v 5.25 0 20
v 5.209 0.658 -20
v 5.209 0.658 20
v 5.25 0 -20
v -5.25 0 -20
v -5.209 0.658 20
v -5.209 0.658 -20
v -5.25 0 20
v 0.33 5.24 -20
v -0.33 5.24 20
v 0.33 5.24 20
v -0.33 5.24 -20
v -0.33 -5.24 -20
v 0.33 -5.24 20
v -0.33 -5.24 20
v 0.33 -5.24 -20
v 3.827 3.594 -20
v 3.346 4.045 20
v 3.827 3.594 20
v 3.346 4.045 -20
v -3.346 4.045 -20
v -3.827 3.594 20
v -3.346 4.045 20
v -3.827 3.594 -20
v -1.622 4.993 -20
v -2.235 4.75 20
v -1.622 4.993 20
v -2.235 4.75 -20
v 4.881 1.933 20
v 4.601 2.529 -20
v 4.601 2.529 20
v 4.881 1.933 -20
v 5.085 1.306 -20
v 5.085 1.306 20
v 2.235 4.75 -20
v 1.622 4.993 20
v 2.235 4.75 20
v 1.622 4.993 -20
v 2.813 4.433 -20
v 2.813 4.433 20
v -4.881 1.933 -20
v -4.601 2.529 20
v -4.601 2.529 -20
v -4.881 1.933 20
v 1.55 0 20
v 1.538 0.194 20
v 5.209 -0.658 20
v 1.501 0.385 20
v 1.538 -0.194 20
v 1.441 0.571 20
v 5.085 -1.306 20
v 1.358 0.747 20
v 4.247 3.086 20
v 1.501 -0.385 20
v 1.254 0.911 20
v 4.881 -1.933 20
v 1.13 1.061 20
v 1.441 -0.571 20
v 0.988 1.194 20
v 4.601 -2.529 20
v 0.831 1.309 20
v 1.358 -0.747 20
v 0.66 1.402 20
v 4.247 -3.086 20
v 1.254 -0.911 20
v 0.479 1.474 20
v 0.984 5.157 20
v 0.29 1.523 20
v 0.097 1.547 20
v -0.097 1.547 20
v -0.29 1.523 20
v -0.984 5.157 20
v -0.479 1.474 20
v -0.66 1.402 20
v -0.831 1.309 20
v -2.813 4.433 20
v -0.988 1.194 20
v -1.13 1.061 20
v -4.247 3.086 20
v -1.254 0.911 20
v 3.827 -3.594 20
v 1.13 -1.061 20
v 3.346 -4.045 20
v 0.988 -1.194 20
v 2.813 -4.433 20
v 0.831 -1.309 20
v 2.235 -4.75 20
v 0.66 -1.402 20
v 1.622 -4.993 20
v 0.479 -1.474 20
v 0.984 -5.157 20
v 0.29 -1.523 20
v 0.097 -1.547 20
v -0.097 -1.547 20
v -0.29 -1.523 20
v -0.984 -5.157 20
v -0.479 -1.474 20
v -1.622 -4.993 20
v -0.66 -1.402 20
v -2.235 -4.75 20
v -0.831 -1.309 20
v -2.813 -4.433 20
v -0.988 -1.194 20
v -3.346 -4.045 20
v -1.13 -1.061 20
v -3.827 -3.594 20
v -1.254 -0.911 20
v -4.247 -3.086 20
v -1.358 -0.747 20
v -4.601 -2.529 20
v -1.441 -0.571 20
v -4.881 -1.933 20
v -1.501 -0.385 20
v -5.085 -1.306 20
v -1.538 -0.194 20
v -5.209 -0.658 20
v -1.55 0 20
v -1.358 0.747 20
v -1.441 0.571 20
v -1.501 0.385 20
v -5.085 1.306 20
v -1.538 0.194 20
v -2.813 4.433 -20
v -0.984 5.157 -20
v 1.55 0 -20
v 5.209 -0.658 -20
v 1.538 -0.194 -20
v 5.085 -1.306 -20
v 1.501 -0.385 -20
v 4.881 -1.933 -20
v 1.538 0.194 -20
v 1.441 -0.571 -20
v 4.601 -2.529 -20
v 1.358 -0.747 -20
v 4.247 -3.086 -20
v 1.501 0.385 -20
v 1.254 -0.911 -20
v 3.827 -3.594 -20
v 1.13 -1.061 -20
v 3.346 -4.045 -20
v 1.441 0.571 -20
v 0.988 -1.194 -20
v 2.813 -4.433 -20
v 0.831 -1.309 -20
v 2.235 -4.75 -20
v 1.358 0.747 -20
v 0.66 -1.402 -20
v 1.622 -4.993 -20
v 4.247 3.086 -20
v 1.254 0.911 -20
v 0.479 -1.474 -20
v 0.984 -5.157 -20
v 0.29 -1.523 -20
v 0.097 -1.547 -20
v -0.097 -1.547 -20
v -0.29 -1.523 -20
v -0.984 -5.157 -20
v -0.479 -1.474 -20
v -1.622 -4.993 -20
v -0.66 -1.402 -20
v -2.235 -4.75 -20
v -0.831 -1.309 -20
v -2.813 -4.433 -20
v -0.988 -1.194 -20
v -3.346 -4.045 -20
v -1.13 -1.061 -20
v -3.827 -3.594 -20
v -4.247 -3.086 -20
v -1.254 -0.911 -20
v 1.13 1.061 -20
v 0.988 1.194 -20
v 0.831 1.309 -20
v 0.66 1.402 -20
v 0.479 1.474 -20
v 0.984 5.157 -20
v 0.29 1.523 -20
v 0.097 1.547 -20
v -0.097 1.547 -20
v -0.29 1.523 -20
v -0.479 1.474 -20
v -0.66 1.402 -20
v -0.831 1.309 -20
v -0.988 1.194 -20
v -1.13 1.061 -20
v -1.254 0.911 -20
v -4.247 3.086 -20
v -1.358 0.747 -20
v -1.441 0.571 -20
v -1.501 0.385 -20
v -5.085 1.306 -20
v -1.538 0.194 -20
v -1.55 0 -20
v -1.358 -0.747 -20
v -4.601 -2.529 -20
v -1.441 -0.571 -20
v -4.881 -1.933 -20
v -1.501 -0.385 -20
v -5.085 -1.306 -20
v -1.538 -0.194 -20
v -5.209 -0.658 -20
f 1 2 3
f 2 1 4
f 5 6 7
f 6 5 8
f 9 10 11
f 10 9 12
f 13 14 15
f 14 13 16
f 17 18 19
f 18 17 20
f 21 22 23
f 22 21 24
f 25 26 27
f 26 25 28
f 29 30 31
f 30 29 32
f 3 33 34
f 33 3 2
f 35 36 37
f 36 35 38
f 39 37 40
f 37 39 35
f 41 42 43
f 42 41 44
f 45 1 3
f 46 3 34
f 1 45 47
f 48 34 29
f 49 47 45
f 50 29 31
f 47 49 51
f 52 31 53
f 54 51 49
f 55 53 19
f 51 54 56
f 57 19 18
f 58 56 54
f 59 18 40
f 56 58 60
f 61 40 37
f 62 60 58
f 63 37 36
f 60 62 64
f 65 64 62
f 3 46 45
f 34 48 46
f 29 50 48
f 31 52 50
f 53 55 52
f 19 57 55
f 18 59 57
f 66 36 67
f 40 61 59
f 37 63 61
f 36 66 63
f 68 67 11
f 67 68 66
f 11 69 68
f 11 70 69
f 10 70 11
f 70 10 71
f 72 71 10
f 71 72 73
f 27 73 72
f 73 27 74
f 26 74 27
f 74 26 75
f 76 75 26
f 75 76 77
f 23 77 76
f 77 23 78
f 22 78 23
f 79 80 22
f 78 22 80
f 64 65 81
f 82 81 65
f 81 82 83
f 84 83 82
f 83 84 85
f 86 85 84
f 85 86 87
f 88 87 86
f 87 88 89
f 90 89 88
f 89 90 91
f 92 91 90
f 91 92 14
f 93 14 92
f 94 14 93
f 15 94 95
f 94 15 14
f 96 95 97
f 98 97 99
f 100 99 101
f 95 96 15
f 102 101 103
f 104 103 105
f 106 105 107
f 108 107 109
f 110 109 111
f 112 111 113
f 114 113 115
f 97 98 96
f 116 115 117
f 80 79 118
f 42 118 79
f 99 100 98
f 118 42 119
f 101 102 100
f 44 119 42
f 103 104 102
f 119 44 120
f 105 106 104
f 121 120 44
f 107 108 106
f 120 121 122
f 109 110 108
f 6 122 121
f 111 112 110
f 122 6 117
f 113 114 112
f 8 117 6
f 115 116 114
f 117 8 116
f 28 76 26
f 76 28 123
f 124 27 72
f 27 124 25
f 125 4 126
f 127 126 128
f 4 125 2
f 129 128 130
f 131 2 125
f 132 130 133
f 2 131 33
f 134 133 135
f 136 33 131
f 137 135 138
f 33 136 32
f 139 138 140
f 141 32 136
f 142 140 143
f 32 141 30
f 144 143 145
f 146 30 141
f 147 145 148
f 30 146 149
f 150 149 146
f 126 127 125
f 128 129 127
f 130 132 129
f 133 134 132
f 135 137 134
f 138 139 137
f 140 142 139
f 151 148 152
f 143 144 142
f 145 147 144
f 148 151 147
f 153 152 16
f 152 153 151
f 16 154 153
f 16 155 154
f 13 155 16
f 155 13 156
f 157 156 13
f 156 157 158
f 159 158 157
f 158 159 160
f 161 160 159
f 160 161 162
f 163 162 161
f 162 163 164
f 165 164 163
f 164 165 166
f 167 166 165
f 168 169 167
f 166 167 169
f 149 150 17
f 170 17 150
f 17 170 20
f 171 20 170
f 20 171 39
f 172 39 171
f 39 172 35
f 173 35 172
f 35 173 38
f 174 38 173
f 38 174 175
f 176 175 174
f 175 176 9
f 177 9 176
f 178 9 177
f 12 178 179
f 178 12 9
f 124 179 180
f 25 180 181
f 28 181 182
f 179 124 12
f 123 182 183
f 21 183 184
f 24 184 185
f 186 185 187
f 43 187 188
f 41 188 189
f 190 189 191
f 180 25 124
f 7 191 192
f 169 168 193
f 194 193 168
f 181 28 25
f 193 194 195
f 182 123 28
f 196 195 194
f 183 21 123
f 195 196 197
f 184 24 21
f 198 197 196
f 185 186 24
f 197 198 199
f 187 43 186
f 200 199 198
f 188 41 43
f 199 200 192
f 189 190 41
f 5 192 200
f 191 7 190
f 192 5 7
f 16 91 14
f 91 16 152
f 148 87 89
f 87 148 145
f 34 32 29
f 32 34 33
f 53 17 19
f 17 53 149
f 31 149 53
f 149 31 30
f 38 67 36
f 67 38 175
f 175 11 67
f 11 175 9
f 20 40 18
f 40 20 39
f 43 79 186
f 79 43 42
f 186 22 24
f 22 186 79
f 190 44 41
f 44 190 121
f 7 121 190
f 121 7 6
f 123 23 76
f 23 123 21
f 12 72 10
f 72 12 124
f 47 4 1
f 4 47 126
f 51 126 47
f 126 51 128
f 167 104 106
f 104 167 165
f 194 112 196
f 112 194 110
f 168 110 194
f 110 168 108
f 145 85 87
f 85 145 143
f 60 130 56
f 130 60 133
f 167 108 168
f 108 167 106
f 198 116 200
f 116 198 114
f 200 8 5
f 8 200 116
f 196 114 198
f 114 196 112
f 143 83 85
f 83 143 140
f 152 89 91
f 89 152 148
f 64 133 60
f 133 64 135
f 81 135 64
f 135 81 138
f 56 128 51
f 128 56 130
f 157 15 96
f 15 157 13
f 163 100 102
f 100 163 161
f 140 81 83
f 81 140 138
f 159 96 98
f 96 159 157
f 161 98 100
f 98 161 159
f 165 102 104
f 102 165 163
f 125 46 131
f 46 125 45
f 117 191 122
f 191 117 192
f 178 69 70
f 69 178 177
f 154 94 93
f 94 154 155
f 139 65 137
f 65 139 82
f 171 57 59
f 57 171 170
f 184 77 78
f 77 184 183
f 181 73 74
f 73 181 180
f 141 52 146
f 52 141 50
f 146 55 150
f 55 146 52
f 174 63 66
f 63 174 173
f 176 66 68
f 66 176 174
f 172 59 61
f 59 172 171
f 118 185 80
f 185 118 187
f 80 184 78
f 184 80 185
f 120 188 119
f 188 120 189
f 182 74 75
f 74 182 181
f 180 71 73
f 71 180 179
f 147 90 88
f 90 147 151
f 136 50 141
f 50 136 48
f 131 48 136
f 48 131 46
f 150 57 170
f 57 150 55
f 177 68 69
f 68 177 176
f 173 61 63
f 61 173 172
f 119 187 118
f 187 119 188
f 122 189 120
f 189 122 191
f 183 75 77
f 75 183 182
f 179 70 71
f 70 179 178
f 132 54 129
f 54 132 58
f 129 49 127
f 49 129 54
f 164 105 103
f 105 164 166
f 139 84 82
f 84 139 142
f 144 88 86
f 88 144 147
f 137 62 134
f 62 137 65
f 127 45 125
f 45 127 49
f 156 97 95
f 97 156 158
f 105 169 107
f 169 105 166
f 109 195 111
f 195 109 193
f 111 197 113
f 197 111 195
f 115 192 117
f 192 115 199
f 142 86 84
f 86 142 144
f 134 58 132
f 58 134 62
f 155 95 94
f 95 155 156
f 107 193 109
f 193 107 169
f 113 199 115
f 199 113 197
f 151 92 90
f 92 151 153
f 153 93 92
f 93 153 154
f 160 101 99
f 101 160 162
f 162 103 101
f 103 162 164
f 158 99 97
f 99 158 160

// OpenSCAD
$fn = 50;


difference() {
	union() {
		translate(v = [0, 0, -20.0000000000]) {
			cylinder(h = 40, r = 5.2500000000);
		}
	}
	union() {
		translate(v = [0, 0, -100.0000000000]) {
			cylinder(h = 200, r = 1.5500000000);
		}
	}
}
